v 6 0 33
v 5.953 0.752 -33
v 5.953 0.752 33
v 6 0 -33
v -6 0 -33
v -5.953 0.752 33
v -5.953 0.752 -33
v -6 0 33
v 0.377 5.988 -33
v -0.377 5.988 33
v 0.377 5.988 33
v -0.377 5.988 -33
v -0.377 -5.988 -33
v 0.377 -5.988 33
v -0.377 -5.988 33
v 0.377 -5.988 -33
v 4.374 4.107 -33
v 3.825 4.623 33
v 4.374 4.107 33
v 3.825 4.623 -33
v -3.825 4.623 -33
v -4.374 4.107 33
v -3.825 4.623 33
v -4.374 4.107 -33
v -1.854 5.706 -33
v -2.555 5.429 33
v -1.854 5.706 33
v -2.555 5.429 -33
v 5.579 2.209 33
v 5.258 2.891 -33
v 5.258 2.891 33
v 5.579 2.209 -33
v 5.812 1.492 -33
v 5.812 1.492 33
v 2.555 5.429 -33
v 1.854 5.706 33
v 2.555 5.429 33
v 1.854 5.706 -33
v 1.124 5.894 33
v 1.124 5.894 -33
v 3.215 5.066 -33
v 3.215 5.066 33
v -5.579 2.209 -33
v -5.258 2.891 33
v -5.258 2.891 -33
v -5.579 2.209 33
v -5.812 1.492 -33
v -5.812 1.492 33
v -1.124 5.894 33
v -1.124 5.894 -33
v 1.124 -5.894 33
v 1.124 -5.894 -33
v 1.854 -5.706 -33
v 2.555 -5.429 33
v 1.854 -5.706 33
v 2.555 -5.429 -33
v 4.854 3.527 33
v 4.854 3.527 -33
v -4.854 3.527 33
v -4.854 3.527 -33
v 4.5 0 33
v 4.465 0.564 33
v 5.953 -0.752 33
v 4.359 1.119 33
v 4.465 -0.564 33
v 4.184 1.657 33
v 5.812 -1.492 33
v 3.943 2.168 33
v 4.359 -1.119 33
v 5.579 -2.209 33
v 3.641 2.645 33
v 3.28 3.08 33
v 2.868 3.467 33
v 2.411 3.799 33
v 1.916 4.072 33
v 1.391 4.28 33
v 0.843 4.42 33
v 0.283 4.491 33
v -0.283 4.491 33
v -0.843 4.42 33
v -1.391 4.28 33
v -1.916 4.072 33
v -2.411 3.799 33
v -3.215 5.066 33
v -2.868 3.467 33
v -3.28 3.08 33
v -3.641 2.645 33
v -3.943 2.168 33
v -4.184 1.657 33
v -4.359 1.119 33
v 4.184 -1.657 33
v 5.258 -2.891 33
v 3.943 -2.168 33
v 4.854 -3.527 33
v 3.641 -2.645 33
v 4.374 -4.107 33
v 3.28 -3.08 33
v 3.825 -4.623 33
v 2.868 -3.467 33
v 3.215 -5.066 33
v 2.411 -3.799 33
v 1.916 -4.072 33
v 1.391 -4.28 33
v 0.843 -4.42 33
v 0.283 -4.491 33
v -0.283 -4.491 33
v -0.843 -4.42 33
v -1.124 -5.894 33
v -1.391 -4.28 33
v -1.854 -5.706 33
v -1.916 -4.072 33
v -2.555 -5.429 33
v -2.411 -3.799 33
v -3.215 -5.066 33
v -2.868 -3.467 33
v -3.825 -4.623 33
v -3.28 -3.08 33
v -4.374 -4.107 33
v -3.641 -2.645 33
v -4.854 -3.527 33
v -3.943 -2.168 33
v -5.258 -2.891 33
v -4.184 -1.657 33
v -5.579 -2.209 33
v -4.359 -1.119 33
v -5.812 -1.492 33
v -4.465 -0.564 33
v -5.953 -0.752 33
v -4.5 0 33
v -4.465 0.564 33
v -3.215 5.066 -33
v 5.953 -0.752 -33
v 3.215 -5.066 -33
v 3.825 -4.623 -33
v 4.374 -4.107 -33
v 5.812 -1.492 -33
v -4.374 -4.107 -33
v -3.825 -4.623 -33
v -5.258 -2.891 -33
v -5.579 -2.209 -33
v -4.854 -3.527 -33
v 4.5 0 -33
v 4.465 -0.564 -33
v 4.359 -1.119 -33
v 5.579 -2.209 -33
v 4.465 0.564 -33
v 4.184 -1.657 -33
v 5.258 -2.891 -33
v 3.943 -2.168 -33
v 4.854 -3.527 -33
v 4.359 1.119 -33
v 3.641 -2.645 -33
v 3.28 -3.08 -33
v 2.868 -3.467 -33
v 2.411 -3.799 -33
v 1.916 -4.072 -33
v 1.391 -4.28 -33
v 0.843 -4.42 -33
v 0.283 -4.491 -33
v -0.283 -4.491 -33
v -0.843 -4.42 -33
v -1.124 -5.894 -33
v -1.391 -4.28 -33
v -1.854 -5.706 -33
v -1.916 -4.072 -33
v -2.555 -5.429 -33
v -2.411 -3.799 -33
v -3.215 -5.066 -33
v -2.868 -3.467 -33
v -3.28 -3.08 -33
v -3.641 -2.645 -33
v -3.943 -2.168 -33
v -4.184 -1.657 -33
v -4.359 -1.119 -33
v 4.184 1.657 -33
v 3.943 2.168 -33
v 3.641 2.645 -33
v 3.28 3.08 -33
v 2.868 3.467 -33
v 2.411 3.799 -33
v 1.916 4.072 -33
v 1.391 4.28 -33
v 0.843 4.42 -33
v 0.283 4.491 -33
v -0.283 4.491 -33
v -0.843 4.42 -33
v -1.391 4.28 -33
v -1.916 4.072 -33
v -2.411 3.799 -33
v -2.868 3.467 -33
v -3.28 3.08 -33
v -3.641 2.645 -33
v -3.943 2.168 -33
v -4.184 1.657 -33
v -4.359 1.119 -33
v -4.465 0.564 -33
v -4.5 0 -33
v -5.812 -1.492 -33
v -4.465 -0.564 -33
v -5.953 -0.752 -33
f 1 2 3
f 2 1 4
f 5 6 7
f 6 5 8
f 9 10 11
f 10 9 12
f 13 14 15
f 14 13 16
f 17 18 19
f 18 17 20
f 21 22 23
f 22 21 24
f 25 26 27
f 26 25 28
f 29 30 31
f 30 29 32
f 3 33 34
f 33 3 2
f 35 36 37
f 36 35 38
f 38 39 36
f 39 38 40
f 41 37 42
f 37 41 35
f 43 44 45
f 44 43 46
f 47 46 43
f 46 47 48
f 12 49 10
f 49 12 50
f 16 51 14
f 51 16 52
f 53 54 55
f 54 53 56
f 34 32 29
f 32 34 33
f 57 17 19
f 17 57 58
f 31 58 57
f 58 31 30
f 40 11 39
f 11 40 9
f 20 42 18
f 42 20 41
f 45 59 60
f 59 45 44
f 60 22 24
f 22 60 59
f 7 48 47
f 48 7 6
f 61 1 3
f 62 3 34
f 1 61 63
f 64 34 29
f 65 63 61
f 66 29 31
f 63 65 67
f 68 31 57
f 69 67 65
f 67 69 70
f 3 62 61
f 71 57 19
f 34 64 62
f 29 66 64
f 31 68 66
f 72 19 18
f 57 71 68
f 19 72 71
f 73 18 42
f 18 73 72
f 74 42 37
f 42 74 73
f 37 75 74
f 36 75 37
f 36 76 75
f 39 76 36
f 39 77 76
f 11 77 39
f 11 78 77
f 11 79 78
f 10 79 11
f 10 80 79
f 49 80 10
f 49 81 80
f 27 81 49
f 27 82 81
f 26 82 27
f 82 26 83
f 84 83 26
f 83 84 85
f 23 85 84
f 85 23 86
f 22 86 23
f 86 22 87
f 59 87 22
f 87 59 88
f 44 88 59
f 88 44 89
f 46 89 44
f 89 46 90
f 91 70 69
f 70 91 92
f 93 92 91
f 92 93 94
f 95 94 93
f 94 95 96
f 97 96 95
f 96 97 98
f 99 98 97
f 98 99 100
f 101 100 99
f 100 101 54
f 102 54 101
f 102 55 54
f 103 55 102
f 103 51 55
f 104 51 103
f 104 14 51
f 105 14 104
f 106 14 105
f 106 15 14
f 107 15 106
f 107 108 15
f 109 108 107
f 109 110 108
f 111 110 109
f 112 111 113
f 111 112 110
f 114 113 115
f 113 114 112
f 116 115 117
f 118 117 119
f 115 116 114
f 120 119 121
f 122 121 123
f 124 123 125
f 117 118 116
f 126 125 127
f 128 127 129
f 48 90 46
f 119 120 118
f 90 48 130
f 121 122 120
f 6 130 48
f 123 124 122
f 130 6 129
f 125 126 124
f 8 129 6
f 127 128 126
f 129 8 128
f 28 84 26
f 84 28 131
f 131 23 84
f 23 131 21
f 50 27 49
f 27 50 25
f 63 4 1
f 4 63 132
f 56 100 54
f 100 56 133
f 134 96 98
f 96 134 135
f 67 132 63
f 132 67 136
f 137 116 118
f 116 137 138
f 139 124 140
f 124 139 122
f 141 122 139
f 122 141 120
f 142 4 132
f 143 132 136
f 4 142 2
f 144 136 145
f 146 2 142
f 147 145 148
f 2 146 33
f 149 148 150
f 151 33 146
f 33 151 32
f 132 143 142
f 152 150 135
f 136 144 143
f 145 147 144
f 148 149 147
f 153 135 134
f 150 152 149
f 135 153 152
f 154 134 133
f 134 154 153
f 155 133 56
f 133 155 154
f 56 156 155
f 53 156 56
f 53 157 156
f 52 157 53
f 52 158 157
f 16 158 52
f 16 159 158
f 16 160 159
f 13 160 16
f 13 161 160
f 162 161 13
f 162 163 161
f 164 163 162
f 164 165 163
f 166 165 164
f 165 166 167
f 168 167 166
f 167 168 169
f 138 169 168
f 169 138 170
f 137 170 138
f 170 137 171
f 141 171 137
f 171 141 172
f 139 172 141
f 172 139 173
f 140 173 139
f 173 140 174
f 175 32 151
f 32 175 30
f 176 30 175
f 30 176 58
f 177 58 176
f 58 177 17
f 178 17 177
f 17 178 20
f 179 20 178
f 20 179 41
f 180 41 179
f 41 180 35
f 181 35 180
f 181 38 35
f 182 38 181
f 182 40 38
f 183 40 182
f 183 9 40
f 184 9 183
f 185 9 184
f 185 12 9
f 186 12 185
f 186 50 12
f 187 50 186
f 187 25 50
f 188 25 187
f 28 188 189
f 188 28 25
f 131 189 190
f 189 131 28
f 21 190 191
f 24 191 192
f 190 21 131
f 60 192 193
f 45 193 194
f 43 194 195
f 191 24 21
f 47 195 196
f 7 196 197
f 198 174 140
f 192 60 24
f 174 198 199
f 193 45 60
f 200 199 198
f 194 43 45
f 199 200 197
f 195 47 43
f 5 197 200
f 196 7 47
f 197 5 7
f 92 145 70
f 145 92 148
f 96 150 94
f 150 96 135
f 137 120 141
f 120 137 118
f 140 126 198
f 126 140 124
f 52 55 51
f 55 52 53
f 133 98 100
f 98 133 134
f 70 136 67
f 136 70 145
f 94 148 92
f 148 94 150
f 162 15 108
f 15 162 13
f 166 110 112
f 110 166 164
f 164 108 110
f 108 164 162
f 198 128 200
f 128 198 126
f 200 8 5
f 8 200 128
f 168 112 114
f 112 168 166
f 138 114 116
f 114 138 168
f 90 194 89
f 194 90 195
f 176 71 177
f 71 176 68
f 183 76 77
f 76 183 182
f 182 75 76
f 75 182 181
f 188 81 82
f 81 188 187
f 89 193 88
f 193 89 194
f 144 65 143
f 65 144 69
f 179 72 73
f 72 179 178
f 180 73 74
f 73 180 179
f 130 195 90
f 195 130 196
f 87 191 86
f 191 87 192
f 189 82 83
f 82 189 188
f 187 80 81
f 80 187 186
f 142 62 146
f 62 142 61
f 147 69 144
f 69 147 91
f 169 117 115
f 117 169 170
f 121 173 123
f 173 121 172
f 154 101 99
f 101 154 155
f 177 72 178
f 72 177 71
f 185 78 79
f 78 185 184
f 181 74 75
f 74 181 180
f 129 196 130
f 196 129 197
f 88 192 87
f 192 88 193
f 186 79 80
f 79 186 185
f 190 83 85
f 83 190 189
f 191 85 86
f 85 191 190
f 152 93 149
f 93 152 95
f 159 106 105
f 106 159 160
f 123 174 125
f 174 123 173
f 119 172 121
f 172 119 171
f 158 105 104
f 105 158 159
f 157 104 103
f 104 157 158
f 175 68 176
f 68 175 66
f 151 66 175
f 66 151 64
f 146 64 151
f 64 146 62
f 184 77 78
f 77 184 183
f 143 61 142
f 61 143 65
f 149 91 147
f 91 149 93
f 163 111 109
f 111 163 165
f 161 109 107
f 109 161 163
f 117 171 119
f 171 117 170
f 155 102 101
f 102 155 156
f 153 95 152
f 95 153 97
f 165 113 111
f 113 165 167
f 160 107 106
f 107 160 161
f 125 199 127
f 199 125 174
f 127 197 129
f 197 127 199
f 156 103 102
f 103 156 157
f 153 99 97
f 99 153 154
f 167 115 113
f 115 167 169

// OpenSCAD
$fn = 50;


difference() {
	union() {
		translate(v = [0, 0, -33.0000000000]) {
			cylinder(h = 66, r = 6.0000000000);
		}
	}
	union() {
		translate(v = [0, 0, -100.0000000000]) {
			cylinder(h = 200, r = 4.5000000000);
		}
	}
}
